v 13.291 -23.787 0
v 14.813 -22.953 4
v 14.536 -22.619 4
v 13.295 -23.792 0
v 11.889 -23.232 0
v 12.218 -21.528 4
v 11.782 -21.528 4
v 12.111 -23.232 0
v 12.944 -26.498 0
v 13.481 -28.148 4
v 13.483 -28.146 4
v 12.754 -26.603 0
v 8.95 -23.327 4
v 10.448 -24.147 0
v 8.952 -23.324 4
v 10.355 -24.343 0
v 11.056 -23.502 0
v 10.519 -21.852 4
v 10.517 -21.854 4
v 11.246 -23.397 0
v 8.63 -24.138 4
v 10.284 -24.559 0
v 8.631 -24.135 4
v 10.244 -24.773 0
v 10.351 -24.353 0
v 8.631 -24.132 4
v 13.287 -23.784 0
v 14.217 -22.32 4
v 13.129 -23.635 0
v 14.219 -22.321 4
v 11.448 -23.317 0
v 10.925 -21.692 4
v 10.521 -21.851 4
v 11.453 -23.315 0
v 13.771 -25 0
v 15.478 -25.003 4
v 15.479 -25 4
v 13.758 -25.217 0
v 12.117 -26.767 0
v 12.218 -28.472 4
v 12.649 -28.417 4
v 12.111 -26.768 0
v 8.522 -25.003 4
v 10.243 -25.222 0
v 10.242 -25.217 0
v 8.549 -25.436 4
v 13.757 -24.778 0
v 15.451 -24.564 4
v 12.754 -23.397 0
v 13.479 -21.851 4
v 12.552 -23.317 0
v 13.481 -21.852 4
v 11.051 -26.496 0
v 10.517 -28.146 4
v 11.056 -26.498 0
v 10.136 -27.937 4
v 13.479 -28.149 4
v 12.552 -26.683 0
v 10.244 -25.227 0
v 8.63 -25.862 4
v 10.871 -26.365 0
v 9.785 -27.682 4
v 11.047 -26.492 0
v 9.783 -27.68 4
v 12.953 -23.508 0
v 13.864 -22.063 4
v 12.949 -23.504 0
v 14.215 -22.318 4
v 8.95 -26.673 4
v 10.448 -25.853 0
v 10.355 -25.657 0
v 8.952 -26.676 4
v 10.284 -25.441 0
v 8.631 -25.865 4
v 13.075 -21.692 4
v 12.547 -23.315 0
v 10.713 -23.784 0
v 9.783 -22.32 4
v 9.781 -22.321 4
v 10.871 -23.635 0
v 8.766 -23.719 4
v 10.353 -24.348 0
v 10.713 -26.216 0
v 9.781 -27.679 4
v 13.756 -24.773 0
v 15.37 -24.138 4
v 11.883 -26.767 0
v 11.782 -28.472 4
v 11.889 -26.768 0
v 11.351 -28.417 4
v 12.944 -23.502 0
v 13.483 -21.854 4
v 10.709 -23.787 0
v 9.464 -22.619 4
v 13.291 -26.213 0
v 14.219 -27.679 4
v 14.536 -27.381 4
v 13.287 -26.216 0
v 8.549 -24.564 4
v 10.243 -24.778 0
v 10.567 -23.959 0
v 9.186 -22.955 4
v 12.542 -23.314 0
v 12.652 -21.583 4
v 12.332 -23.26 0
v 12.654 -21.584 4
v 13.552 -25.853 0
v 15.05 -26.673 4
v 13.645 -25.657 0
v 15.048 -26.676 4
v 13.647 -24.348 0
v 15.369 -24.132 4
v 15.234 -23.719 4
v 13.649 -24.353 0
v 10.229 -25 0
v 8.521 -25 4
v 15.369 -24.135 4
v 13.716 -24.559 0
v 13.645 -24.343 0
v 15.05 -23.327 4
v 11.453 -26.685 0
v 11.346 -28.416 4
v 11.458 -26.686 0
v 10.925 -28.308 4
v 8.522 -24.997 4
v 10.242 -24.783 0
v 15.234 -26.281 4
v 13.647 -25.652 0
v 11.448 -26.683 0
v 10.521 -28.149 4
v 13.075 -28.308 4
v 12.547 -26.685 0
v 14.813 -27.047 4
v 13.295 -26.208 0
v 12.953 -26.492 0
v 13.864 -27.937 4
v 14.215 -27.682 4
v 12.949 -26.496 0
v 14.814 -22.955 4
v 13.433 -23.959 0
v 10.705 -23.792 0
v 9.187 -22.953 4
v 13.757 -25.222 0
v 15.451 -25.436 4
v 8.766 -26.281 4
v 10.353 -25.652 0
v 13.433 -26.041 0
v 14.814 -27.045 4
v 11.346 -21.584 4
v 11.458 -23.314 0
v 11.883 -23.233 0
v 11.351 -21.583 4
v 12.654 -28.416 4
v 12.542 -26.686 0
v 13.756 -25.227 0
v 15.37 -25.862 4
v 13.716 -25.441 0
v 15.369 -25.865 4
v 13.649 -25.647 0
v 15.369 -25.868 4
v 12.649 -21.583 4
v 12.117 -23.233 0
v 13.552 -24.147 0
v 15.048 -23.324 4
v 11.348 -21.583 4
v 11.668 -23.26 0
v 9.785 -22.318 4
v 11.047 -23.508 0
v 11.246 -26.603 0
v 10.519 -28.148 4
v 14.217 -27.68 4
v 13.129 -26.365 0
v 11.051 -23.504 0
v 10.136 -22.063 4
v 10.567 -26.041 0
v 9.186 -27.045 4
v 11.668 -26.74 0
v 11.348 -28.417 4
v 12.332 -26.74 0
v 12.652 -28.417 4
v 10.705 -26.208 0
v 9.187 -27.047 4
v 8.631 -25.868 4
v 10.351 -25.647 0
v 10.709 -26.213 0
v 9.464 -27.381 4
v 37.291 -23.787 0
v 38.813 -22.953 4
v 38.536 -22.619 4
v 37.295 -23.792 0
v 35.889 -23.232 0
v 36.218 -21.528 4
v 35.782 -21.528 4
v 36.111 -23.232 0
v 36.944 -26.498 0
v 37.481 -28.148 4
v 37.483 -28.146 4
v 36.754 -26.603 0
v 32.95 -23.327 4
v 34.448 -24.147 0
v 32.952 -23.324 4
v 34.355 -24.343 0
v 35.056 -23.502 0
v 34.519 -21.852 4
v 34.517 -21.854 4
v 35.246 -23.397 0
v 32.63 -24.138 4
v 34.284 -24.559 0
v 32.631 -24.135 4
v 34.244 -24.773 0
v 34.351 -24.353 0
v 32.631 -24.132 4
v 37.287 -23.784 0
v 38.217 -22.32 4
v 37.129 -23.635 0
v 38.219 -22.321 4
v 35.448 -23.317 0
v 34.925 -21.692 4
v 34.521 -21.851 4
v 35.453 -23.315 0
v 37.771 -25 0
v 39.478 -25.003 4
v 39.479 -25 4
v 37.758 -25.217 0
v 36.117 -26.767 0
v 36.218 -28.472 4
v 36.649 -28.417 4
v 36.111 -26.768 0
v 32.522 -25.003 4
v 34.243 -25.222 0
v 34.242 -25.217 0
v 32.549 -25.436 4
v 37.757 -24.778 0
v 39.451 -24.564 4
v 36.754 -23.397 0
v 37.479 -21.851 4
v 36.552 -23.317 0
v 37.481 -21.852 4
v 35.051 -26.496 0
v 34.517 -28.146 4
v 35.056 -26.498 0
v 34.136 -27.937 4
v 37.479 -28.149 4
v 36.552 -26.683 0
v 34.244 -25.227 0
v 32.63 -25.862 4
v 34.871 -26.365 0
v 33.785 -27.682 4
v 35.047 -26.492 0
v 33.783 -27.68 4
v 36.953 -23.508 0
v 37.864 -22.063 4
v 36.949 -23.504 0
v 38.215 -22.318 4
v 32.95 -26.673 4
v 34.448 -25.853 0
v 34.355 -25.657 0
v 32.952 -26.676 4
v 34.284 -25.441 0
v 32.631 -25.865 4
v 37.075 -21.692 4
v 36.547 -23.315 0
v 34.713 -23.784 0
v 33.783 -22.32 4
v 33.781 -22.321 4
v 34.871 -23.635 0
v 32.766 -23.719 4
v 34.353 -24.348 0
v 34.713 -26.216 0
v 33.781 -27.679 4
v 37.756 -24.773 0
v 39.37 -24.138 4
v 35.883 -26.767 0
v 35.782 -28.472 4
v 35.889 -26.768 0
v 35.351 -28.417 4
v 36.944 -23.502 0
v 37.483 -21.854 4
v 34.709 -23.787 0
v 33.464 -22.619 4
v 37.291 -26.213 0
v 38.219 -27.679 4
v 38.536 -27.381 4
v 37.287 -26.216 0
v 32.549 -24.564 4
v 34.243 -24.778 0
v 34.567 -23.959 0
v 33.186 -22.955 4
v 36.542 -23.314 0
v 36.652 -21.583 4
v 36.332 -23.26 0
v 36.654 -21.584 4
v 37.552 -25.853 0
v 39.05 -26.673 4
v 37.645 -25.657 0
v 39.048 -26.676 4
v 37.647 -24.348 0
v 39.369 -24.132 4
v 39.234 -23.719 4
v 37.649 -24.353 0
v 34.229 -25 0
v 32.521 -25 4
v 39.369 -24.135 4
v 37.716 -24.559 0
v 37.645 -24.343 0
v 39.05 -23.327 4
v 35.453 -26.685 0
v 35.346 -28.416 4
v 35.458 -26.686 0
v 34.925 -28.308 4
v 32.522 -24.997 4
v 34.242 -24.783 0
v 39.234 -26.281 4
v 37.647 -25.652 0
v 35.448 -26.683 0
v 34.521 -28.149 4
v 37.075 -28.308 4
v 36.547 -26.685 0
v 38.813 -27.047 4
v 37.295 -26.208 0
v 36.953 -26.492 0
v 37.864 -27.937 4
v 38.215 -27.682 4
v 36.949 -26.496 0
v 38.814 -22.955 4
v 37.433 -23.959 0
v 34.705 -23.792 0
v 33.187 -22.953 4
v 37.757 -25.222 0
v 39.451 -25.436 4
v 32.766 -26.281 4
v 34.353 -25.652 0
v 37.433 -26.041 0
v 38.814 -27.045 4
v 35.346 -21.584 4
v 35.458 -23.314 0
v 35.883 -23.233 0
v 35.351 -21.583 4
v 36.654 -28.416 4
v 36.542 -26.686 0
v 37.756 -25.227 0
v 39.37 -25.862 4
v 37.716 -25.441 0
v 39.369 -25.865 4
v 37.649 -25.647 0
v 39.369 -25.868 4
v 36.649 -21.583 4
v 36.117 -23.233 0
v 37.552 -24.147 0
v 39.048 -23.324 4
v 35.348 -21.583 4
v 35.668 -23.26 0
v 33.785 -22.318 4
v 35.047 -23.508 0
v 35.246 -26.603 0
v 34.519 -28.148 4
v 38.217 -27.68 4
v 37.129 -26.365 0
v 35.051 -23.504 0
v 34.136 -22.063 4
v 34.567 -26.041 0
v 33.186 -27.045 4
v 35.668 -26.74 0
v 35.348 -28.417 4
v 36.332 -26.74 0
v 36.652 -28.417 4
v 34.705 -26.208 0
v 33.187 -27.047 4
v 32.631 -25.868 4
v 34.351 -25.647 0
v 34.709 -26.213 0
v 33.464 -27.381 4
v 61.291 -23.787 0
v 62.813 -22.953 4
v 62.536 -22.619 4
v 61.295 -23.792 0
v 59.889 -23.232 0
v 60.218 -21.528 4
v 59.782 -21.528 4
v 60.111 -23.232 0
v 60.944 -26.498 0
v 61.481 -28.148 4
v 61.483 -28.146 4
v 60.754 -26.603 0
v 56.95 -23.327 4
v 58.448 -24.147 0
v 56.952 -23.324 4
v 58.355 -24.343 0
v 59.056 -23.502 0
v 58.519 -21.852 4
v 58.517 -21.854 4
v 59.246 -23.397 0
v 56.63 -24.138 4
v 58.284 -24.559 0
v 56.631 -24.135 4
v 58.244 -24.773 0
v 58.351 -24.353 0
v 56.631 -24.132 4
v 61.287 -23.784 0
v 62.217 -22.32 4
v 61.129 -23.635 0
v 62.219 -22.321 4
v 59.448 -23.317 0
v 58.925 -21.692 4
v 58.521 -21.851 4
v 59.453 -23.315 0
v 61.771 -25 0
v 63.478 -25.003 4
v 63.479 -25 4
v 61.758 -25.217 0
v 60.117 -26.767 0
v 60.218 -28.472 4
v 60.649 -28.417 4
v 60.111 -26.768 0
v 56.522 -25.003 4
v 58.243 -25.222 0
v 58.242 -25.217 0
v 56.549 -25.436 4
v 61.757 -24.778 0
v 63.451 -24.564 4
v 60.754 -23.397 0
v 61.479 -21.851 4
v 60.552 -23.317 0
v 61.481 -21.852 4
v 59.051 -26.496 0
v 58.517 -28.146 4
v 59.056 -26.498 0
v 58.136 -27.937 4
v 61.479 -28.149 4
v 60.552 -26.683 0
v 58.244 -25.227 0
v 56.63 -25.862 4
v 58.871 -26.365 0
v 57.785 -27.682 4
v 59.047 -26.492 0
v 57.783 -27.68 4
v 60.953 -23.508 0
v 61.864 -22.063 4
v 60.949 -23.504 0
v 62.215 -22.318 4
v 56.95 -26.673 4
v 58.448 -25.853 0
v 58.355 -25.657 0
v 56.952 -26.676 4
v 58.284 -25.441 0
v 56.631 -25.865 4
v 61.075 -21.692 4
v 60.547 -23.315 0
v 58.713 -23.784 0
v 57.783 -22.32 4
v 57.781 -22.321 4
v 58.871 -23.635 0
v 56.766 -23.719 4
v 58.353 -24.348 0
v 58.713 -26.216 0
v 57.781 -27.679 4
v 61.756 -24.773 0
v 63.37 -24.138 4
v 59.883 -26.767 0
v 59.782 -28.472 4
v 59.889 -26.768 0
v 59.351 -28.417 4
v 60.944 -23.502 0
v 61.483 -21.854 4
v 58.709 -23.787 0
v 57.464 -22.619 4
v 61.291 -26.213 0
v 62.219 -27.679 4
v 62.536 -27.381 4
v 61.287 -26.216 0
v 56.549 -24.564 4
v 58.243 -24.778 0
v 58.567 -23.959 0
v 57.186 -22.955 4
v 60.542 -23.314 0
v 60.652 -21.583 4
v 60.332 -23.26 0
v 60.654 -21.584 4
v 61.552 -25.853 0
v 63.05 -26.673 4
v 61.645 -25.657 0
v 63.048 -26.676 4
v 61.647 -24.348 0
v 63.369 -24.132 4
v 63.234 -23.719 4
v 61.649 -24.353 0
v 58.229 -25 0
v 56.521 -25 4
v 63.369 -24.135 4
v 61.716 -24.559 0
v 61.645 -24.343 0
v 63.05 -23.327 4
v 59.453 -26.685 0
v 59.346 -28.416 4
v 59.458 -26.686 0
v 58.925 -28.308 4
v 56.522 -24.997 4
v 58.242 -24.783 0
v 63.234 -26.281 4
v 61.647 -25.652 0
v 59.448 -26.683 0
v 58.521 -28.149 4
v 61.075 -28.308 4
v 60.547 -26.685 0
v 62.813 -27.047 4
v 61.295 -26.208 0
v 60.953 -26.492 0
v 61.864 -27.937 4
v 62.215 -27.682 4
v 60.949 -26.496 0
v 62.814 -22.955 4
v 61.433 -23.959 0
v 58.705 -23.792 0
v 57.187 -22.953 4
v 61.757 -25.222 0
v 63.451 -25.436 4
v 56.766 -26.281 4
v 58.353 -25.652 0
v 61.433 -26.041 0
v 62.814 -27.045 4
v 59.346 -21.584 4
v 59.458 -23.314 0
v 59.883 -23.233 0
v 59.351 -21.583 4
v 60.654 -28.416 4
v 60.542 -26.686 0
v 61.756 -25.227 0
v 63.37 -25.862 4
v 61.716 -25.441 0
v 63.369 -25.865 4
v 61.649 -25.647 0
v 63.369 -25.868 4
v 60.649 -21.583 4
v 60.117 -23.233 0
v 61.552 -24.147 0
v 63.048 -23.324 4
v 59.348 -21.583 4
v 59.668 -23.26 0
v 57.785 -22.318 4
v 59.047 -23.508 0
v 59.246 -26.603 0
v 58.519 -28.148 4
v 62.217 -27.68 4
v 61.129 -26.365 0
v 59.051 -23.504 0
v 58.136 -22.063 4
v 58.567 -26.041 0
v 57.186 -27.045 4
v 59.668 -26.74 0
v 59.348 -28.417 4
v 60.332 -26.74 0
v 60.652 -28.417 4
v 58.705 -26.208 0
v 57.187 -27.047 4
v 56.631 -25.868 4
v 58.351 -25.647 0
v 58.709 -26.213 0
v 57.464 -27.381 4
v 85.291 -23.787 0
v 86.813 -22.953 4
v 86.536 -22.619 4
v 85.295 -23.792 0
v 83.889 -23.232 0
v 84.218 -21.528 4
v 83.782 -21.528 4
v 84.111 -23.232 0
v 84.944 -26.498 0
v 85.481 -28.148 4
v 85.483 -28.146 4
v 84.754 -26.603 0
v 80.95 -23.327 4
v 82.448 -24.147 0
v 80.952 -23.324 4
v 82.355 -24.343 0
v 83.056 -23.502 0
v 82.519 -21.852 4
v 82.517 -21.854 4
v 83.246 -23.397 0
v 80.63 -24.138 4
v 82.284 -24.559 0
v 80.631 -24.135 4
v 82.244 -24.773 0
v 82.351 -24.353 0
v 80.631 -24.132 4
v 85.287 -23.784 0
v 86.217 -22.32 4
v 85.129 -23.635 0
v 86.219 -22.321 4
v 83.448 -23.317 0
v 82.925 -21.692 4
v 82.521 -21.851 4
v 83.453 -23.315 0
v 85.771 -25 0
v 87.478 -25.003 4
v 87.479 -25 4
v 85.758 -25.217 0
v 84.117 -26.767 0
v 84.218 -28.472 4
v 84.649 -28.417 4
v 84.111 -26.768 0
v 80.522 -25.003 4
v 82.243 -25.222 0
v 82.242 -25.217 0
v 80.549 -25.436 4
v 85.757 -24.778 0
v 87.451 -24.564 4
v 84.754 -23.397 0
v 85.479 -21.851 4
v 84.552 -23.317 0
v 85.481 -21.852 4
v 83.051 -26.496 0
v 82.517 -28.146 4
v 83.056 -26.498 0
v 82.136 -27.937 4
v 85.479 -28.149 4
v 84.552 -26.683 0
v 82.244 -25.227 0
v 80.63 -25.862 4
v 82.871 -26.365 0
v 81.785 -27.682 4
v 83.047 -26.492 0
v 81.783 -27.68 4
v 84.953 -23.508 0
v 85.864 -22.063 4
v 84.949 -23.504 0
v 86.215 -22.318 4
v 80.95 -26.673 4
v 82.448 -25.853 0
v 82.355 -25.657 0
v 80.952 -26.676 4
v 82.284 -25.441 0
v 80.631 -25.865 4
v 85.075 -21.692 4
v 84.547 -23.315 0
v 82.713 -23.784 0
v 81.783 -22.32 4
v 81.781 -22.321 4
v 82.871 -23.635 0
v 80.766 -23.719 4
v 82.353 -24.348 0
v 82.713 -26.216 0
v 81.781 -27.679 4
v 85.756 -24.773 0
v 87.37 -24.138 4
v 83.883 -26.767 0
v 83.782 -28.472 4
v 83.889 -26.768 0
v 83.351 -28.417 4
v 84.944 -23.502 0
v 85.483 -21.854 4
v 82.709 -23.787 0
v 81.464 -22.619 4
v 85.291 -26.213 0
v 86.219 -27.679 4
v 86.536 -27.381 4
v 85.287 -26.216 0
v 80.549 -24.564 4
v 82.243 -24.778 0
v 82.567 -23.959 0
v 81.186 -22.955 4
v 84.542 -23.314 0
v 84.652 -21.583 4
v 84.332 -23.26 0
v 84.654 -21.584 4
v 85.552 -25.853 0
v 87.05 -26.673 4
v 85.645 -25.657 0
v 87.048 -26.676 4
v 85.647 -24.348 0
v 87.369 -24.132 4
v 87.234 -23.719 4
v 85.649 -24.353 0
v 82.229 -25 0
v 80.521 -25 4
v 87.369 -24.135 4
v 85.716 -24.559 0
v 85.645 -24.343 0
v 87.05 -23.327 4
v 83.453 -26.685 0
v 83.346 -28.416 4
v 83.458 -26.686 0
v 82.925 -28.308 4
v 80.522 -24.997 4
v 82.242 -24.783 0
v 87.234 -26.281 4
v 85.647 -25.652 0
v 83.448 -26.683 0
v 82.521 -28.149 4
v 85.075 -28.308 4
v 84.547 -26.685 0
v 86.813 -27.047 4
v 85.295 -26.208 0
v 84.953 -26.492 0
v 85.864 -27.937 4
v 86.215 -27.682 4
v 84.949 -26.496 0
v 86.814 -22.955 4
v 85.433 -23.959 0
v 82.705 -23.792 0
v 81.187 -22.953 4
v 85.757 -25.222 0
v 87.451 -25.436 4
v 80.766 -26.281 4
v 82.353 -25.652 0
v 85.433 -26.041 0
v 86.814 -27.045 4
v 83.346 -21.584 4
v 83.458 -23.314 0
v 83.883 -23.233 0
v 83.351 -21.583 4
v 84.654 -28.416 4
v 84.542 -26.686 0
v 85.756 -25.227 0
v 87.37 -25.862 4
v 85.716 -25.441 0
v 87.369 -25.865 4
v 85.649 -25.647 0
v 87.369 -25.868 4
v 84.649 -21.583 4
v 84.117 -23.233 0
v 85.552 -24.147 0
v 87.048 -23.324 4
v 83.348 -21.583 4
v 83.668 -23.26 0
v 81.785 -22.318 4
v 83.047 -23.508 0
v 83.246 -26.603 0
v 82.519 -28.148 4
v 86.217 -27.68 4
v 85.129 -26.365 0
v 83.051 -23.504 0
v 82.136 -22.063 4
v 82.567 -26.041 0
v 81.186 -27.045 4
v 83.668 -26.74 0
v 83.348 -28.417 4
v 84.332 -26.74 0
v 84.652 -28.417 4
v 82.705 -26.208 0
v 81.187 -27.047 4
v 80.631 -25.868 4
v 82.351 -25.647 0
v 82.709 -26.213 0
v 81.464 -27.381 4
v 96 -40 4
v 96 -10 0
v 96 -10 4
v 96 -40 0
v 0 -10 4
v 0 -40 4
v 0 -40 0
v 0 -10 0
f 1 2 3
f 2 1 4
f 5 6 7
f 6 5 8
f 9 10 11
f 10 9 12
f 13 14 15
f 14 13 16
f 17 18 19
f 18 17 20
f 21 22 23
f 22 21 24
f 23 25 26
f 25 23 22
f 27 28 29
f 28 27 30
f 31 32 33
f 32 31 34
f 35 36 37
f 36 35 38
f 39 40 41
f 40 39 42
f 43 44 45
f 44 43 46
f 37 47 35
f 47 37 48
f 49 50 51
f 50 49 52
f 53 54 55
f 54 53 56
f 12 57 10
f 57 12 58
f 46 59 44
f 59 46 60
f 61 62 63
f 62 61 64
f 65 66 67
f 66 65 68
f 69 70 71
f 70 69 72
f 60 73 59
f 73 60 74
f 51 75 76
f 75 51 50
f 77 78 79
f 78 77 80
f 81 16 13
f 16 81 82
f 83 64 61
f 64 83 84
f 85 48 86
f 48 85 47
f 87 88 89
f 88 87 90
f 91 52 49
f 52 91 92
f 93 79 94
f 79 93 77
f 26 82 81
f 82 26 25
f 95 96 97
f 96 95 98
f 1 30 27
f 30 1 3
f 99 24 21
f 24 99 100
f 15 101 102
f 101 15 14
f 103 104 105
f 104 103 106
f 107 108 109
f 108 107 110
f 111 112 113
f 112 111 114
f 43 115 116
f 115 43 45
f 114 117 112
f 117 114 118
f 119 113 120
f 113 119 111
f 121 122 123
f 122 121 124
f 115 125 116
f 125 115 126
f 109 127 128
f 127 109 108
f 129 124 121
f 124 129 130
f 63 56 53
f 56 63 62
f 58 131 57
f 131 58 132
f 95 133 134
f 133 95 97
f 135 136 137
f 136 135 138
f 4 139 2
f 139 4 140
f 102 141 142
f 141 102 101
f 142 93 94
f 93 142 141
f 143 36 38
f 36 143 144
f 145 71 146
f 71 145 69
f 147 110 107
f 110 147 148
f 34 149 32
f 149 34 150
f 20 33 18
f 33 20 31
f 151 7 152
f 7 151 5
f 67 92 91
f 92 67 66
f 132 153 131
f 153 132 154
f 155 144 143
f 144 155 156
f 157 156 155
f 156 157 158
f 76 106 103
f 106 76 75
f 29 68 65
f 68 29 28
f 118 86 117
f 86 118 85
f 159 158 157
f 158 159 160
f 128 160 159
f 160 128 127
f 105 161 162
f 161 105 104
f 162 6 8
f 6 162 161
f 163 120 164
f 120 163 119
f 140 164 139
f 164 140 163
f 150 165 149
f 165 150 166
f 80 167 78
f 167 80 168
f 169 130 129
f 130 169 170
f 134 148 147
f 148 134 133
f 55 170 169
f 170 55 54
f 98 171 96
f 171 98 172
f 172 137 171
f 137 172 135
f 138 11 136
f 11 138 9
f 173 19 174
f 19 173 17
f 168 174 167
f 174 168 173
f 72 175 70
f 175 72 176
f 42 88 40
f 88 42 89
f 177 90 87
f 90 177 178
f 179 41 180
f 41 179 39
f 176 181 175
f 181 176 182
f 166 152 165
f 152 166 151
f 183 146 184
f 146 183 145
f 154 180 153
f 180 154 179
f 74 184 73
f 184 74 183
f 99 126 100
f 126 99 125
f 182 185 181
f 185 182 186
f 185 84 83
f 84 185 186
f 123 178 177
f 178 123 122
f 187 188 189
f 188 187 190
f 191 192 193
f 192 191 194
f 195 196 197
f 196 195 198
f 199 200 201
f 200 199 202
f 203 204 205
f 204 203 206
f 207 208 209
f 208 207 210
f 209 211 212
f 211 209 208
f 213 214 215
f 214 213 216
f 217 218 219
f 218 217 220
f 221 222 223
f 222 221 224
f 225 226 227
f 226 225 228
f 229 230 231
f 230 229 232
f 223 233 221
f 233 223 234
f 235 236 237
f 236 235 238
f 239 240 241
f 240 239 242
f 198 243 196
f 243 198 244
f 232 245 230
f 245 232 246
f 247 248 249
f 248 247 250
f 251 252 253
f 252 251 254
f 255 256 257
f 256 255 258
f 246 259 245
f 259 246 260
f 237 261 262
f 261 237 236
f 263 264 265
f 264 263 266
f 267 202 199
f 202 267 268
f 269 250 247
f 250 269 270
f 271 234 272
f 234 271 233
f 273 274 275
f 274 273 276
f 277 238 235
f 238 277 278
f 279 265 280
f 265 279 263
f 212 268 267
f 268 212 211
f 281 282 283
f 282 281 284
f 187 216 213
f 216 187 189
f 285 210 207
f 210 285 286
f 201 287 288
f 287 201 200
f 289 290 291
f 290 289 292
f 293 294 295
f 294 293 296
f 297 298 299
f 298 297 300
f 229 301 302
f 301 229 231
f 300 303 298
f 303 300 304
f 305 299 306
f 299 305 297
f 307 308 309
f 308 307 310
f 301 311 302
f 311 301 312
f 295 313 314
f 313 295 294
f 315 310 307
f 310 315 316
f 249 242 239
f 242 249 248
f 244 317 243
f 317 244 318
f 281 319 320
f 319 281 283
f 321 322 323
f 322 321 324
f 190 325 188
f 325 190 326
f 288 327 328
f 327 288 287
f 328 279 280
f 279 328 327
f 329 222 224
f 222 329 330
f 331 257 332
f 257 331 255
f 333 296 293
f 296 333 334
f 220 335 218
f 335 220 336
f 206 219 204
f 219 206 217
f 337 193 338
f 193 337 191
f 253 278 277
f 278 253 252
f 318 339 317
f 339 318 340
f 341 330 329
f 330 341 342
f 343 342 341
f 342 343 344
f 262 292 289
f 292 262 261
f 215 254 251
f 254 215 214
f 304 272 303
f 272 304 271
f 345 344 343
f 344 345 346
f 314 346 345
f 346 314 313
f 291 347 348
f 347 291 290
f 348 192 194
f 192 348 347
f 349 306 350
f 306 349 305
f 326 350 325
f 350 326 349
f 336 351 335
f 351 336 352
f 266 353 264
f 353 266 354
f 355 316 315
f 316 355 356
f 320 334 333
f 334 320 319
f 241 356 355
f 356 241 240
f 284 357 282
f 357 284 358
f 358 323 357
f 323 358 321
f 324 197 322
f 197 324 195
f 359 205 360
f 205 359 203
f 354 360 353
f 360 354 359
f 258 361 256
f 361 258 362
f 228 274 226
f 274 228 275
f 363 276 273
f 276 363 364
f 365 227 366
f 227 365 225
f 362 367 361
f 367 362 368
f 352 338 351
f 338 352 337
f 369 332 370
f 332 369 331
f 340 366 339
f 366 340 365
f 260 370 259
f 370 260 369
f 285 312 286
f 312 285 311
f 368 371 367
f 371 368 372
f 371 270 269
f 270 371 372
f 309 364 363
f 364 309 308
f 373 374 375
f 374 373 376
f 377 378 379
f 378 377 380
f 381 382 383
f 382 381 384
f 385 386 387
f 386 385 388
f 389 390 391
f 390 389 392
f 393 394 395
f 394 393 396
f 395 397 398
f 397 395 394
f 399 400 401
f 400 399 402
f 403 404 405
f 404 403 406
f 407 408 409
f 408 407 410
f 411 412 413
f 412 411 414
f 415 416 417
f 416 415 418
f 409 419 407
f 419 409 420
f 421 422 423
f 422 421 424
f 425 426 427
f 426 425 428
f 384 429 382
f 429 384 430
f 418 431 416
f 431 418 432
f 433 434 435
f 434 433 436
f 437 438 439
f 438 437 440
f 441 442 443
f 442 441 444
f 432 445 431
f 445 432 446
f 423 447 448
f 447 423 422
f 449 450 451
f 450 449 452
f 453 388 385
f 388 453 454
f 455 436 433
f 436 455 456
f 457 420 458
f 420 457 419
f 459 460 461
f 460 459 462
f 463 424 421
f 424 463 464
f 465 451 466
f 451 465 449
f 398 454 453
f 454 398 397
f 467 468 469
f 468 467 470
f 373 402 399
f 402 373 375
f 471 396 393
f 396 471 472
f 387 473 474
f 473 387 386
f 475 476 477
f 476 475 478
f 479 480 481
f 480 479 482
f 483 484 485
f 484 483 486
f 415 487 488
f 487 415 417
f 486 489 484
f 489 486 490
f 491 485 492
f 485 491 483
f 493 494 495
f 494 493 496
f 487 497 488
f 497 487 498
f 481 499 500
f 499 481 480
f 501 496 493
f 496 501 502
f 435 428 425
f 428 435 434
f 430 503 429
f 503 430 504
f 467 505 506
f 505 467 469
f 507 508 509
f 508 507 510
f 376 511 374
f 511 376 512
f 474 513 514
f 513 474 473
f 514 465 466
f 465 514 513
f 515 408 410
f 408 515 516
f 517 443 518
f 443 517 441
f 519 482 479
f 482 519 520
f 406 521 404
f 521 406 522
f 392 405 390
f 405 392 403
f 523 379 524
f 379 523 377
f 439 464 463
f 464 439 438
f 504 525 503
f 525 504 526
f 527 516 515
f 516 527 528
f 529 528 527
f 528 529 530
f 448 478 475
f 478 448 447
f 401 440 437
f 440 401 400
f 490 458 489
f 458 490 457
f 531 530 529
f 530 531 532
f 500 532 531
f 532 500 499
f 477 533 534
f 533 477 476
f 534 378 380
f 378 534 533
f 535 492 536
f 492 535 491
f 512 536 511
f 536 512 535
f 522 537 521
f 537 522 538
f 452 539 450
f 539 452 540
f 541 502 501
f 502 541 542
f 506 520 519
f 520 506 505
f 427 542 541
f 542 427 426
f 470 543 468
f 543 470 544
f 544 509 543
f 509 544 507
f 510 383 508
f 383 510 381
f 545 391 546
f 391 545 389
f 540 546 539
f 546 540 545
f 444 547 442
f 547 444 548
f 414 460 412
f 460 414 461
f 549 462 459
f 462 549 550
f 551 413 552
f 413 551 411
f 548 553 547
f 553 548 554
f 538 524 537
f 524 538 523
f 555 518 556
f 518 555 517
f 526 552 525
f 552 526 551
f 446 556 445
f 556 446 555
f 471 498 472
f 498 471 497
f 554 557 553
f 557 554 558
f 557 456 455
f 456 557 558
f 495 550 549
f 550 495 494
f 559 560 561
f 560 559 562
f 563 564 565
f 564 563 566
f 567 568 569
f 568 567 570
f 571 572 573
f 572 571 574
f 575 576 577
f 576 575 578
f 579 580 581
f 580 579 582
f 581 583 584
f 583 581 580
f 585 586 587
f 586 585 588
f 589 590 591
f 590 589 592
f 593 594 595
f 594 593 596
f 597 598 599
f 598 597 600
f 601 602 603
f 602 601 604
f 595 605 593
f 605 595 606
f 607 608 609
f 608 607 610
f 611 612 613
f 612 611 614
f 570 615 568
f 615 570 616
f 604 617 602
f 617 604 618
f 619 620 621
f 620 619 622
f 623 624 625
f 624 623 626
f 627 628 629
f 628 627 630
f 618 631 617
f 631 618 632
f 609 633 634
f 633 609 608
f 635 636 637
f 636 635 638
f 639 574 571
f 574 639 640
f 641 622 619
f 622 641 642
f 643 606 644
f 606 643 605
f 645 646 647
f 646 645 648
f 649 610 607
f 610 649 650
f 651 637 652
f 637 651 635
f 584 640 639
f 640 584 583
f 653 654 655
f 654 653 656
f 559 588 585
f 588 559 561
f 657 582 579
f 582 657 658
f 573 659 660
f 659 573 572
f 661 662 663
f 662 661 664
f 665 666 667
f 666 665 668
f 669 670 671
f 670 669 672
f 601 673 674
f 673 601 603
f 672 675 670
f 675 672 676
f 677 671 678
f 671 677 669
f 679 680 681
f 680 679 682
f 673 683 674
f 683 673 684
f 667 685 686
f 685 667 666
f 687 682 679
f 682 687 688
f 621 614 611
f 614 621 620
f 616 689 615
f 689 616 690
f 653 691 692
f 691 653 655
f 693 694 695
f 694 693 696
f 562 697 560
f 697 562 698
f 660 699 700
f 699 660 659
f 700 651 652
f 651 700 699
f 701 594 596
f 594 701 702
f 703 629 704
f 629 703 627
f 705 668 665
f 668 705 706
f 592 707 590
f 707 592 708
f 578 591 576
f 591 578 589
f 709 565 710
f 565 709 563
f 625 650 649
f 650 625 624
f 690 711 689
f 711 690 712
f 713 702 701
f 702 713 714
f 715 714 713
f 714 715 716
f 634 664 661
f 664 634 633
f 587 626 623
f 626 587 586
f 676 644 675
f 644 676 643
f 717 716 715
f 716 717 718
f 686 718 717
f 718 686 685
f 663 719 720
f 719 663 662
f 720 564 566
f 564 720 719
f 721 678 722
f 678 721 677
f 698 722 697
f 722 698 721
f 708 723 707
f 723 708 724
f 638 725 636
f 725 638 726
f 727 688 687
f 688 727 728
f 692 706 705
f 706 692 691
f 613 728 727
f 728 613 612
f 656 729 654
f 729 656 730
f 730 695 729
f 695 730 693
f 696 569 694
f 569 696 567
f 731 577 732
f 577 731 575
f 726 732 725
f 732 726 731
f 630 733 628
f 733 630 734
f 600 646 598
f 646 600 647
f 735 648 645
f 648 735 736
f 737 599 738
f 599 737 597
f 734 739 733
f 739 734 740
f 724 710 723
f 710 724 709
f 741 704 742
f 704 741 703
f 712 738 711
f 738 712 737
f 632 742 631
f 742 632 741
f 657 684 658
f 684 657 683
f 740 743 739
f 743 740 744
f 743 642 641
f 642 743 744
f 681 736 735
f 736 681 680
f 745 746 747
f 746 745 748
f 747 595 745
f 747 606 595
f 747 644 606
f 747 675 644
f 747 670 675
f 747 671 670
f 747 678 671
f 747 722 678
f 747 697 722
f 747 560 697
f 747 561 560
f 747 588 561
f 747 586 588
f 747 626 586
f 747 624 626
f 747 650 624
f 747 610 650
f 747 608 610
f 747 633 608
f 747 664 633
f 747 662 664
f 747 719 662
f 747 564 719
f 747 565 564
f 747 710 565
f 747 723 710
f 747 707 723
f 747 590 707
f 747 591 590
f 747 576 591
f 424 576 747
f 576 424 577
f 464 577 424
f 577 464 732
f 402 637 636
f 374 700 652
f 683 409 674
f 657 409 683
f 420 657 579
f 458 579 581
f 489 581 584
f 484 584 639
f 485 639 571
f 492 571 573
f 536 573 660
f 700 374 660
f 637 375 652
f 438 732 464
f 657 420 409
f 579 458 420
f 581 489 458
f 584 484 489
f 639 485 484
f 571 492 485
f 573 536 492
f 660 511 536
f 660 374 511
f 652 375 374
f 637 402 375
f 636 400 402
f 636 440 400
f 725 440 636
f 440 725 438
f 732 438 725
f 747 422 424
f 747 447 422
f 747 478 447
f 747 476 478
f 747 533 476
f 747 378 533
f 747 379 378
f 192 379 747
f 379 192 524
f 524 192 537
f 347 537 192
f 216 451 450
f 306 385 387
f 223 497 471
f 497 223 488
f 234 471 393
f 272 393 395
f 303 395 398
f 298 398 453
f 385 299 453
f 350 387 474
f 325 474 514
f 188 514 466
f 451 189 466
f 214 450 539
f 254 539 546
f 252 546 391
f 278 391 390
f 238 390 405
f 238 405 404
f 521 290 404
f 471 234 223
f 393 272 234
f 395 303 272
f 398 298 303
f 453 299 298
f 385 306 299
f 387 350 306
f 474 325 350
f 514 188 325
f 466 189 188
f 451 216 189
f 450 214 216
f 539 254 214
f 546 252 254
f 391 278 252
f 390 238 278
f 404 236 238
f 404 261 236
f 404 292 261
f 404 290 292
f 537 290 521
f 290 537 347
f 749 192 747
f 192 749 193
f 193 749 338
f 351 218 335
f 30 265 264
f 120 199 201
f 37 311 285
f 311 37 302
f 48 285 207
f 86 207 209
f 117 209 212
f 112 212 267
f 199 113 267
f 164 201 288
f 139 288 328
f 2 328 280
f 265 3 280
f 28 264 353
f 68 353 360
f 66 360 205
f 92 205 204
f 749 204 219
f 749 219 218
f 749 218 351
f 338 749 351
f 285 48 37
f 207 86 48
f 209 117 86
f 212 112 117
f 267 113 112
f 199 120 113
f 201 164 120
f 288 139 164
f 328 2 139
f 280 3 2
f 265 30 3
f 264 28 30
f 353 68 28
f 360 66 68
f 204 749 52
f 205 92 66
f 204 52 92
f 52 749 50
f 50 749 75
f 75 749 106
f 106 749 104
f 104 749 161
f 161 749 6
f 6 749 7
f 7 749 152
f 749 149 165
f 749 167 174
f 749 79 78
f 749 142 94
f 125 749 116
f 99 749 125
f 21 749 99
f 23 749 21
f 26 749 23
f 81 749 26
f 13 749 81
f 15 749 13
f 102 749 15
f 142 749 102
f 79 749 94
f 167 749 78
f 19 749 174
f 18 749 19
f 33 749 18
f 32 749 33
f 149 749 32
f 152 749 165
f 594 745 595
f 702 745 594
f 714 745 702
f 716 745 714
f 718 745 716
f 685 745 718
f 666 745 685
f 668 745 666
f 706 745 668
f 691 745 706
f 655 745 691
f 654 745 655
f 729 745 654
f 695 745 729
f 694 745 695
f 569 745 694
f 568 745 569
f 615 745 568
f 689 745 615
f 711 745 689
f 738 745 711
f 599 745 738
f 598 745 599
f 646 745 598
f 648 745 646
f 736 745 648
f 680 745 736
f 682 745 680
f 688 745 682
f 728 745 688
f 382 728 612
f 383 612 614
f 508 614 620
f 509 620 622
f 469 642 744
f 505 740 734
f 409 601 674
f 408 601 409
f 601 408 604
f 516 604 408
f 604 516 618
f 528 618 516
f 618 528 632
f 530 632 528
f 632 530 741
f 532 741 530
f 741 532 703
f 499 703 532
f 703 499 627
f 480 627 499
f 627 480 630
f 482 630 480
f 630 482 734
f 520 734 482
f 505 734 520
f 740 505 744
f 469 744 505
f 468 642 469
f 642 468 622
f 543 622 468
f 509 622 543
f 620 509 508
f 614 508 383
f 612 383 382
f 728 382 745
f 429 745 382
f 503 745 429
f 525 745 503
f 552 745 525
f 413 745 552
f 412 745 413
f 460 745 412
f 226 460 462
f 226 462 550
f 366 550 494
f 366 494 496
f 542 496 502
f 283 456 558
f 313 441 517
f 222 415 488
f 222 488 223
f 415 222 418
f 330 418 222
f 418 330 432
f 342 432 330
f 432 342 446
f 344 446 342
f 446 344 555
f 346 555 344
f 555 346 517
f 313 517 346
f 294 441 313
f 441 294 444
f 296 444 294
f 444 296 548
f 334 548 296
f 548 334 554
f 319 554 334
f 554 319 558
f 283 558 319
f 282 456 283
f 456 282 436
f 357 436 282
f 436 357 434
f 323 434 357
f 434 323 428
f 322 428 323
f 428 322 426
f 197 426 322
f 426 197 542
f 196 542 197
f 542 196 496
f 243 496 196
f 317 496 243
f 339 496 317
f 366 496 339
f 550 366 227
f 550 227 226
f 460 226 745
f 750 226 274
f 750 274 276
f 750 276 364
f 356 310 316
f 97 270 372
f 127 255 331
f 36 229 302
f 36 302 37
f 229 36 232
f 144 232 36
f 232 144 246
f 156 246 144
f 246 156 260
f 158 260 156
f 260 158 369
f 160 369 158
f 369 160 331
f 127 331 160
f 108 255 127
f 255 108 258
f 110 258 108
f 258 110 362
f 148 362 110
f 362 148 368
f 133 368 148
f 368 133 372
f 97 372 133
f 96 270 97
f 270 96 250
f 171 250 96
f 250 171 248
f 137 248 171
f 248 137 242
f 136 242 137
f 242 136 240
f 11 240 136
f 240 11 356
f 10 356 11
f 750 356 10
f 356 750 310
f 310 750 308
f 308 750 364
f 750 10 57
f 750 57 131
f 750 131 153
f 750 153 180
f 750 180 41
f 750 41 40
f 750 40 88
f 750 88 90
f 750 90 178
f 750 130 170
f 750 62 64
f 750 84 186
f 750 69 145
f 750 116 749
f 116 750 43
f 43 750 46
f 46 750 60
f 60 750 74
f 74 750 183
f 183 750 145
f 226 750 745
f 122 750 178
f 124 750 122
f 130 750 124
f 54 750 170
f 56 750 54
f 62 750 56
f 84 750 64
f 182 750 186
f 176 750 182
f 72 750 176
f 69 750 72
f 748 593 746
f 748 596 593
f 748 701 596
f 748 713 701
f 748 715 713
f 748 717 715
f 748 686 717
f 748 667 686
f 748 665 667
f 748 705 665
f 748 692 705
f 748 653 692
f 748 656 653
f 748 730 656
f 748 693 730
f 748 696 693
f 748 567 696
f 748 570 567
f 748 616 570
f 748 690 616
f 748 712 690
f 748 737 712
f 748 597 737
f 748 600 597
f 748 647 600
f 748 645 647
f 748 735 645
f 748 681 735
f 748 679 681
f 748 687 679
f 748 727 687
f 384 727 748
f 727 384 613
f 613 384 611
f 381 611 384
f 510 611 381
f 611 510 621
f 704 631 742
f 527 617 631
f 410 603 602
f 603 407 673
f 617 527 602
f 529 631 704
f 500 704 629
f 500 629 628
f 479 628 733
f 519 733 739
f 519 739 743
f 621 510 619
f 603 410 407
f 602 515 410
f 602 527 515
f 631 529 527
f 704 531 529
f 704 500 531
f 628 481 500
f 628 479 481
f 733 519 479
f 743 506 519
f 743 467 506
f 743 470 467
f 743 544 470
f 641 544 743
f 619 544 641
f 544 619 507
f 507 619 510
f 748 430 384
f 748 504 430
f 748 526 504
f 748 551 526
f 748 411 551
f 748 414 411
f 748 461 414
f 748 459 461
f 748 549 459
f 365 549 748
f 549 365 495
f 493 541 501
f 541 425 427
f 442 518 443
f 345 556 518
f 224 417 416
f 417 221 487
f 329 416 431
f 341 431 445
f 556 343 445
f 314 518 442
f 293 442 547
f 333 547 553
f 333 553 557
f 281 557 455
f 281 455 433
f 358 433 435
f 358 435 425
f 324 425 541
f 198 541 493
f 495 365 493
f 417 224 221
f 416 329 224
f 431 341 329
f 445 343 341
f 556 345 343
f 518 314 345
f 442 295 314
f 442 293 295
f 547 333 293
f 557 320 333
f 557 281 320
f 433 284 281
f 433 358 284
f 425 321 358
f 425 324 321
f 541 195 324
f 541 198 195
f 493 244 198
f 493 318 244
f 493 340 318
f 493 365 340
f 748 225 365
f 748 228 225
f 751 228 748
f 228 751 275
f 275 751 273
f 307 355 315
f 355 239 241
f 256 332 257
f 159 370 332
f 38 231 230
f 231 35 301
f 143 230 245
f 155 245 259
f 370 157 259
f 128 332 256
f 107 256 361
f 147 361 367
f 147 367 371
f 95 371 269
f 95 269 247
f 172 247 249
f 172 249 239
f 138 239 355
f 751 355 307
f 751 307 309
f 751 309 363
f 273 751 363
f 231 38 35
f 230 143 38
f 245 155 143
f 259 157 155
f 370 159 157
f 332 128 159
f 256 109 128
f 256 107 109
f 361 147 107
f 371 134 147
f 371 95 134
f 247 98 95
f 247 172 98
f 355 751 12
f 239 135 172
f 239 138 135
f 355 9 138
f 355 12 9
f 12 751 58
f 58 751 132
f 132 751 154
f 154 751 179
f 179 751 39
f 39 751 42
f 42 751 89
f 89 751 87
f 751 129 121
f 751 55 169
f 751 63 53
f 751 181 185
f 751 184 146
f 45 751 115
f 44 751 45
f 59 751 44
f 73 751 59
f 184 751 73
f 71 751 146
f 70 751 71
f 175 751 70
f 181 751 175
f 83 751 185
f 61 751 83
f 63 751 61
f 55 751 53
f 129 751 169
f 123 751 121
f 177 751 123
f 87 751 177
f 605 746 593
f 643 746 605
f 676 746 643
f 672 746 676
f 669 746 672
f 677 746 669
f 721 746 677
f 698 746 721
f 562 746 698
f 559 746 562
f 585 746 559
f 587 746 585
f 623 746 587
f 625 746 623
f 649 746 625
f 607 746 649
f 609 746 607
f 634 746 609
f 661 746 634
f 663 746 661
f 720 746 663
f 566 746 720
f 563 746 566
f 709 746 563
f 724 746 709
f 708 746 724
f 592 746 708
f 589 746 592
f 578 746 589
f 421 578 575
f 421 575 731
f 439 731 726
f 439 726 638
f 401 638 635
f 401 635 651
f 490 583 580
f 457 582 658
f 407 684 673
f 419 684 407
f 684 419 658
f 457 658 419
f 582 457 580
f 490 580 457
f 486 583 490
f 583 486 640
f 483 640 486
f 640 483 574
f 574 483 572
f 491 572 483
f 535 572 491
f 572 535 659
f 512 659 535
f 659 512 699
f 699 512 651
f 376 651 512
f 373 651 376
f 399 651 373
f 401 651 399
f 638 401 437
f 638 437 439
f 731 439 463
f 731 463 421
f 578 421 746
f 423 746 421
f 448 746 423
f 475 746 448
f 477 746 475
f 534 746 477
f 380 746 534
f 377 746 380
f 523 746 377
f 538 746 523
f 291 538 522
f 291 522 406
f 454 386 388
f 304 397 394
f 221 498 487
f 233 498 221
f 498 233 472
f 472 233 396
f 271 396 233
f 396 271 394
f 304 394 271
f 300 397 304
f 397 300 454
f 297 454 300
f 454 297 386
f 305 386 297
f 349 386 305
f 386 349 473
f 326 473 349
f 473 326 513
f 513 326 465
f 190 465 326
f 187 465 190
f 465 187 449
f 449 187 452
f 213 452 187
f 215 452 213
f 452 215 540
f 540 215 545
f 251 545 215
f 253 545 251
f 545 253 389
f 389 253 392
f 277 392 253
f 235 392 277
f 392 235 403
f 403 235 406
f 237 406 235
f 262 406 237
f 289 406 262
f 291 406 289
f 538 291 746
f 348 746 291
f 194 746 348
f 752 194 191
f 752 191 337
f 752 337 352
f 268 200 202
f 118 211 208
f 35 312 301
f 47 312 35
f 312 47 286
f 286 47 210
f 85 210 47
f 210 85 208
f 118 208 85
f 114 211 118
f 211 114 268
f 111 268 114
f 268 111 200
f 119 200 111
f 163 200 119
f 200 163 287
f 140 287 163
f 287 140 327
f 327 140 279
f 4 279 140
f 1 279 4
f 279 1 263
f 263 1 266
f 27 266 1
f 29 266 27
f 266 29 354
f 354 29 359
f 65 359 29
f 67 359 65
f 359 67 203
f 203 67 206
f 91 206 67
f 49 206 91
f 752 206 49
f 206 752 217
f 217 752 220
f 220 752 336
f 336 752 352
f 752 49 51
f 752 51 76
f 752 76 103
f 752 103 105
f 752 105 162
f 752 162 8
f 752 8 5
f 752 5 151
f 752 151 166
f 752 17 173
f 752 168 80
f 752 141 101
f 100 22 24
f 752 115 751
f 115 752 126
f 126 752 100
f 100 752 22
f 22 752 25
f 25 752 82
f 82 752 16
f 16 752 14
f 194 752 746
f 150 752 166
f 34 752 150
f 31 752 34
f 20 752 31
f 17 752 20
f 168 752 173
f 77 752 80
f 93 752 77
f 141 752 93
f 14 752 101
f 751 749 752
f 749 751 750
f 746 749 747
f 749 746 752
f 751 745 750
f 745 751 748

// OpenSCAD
module linear_bracket(length, width, thickness, hole_diameter, countersink_head_diameter, hole_count_lengthwise, hole_count_widthwise, stagger_rows_horizontally_by) {
    
    difference() {
    //union() {
        // Main solid bracket
        cube([length, width, thickness]);
    
        // Create hole grid
        epsilon = 0.1;
        for (row = [0 : hole_count_lengthwise - 1]) {
            row_y_stagger = (row % 2 == 1) ? stagger_rows_horizontally_by : -stagger_rows_horizontally_by;
            for (column = [0 : hole_count_widthwise - 1]) {
                x_offset = (row + 0.5) * length / hole_count_lengthwise;
                y_offset = (column + 0.5) * width / hole_count_widthwise;
                
                translate([x_offset,
                           y_offset + row_y_stagger,
                           -epsilon/2])
                    cylinder(h = thickness+epsilon, d1 = hole_diameter, d2 = countersink_head_diameter, $fn = 50);
            }
        }
    }
}

/*linear_bracket(length = 80, width = 40, thickness = 4,
    hole_diameter = 3.5, countersink_head_diameter = 7,
    hole_count_lengthwise = 4, hole_count_widthwise = 2, stagger_rows_horizontally_by = 3);*/

translate([0, -40, 0])
    
linear_bracket(length = 48*2, width = 30, thickness = 4,
    hole_diameter = 3.5, countersink_head_diameter = 7,
    hole_count_lengthwise = 4, hole_count_widthwise = 1, stagger_rows_horizontally_by = 0);
